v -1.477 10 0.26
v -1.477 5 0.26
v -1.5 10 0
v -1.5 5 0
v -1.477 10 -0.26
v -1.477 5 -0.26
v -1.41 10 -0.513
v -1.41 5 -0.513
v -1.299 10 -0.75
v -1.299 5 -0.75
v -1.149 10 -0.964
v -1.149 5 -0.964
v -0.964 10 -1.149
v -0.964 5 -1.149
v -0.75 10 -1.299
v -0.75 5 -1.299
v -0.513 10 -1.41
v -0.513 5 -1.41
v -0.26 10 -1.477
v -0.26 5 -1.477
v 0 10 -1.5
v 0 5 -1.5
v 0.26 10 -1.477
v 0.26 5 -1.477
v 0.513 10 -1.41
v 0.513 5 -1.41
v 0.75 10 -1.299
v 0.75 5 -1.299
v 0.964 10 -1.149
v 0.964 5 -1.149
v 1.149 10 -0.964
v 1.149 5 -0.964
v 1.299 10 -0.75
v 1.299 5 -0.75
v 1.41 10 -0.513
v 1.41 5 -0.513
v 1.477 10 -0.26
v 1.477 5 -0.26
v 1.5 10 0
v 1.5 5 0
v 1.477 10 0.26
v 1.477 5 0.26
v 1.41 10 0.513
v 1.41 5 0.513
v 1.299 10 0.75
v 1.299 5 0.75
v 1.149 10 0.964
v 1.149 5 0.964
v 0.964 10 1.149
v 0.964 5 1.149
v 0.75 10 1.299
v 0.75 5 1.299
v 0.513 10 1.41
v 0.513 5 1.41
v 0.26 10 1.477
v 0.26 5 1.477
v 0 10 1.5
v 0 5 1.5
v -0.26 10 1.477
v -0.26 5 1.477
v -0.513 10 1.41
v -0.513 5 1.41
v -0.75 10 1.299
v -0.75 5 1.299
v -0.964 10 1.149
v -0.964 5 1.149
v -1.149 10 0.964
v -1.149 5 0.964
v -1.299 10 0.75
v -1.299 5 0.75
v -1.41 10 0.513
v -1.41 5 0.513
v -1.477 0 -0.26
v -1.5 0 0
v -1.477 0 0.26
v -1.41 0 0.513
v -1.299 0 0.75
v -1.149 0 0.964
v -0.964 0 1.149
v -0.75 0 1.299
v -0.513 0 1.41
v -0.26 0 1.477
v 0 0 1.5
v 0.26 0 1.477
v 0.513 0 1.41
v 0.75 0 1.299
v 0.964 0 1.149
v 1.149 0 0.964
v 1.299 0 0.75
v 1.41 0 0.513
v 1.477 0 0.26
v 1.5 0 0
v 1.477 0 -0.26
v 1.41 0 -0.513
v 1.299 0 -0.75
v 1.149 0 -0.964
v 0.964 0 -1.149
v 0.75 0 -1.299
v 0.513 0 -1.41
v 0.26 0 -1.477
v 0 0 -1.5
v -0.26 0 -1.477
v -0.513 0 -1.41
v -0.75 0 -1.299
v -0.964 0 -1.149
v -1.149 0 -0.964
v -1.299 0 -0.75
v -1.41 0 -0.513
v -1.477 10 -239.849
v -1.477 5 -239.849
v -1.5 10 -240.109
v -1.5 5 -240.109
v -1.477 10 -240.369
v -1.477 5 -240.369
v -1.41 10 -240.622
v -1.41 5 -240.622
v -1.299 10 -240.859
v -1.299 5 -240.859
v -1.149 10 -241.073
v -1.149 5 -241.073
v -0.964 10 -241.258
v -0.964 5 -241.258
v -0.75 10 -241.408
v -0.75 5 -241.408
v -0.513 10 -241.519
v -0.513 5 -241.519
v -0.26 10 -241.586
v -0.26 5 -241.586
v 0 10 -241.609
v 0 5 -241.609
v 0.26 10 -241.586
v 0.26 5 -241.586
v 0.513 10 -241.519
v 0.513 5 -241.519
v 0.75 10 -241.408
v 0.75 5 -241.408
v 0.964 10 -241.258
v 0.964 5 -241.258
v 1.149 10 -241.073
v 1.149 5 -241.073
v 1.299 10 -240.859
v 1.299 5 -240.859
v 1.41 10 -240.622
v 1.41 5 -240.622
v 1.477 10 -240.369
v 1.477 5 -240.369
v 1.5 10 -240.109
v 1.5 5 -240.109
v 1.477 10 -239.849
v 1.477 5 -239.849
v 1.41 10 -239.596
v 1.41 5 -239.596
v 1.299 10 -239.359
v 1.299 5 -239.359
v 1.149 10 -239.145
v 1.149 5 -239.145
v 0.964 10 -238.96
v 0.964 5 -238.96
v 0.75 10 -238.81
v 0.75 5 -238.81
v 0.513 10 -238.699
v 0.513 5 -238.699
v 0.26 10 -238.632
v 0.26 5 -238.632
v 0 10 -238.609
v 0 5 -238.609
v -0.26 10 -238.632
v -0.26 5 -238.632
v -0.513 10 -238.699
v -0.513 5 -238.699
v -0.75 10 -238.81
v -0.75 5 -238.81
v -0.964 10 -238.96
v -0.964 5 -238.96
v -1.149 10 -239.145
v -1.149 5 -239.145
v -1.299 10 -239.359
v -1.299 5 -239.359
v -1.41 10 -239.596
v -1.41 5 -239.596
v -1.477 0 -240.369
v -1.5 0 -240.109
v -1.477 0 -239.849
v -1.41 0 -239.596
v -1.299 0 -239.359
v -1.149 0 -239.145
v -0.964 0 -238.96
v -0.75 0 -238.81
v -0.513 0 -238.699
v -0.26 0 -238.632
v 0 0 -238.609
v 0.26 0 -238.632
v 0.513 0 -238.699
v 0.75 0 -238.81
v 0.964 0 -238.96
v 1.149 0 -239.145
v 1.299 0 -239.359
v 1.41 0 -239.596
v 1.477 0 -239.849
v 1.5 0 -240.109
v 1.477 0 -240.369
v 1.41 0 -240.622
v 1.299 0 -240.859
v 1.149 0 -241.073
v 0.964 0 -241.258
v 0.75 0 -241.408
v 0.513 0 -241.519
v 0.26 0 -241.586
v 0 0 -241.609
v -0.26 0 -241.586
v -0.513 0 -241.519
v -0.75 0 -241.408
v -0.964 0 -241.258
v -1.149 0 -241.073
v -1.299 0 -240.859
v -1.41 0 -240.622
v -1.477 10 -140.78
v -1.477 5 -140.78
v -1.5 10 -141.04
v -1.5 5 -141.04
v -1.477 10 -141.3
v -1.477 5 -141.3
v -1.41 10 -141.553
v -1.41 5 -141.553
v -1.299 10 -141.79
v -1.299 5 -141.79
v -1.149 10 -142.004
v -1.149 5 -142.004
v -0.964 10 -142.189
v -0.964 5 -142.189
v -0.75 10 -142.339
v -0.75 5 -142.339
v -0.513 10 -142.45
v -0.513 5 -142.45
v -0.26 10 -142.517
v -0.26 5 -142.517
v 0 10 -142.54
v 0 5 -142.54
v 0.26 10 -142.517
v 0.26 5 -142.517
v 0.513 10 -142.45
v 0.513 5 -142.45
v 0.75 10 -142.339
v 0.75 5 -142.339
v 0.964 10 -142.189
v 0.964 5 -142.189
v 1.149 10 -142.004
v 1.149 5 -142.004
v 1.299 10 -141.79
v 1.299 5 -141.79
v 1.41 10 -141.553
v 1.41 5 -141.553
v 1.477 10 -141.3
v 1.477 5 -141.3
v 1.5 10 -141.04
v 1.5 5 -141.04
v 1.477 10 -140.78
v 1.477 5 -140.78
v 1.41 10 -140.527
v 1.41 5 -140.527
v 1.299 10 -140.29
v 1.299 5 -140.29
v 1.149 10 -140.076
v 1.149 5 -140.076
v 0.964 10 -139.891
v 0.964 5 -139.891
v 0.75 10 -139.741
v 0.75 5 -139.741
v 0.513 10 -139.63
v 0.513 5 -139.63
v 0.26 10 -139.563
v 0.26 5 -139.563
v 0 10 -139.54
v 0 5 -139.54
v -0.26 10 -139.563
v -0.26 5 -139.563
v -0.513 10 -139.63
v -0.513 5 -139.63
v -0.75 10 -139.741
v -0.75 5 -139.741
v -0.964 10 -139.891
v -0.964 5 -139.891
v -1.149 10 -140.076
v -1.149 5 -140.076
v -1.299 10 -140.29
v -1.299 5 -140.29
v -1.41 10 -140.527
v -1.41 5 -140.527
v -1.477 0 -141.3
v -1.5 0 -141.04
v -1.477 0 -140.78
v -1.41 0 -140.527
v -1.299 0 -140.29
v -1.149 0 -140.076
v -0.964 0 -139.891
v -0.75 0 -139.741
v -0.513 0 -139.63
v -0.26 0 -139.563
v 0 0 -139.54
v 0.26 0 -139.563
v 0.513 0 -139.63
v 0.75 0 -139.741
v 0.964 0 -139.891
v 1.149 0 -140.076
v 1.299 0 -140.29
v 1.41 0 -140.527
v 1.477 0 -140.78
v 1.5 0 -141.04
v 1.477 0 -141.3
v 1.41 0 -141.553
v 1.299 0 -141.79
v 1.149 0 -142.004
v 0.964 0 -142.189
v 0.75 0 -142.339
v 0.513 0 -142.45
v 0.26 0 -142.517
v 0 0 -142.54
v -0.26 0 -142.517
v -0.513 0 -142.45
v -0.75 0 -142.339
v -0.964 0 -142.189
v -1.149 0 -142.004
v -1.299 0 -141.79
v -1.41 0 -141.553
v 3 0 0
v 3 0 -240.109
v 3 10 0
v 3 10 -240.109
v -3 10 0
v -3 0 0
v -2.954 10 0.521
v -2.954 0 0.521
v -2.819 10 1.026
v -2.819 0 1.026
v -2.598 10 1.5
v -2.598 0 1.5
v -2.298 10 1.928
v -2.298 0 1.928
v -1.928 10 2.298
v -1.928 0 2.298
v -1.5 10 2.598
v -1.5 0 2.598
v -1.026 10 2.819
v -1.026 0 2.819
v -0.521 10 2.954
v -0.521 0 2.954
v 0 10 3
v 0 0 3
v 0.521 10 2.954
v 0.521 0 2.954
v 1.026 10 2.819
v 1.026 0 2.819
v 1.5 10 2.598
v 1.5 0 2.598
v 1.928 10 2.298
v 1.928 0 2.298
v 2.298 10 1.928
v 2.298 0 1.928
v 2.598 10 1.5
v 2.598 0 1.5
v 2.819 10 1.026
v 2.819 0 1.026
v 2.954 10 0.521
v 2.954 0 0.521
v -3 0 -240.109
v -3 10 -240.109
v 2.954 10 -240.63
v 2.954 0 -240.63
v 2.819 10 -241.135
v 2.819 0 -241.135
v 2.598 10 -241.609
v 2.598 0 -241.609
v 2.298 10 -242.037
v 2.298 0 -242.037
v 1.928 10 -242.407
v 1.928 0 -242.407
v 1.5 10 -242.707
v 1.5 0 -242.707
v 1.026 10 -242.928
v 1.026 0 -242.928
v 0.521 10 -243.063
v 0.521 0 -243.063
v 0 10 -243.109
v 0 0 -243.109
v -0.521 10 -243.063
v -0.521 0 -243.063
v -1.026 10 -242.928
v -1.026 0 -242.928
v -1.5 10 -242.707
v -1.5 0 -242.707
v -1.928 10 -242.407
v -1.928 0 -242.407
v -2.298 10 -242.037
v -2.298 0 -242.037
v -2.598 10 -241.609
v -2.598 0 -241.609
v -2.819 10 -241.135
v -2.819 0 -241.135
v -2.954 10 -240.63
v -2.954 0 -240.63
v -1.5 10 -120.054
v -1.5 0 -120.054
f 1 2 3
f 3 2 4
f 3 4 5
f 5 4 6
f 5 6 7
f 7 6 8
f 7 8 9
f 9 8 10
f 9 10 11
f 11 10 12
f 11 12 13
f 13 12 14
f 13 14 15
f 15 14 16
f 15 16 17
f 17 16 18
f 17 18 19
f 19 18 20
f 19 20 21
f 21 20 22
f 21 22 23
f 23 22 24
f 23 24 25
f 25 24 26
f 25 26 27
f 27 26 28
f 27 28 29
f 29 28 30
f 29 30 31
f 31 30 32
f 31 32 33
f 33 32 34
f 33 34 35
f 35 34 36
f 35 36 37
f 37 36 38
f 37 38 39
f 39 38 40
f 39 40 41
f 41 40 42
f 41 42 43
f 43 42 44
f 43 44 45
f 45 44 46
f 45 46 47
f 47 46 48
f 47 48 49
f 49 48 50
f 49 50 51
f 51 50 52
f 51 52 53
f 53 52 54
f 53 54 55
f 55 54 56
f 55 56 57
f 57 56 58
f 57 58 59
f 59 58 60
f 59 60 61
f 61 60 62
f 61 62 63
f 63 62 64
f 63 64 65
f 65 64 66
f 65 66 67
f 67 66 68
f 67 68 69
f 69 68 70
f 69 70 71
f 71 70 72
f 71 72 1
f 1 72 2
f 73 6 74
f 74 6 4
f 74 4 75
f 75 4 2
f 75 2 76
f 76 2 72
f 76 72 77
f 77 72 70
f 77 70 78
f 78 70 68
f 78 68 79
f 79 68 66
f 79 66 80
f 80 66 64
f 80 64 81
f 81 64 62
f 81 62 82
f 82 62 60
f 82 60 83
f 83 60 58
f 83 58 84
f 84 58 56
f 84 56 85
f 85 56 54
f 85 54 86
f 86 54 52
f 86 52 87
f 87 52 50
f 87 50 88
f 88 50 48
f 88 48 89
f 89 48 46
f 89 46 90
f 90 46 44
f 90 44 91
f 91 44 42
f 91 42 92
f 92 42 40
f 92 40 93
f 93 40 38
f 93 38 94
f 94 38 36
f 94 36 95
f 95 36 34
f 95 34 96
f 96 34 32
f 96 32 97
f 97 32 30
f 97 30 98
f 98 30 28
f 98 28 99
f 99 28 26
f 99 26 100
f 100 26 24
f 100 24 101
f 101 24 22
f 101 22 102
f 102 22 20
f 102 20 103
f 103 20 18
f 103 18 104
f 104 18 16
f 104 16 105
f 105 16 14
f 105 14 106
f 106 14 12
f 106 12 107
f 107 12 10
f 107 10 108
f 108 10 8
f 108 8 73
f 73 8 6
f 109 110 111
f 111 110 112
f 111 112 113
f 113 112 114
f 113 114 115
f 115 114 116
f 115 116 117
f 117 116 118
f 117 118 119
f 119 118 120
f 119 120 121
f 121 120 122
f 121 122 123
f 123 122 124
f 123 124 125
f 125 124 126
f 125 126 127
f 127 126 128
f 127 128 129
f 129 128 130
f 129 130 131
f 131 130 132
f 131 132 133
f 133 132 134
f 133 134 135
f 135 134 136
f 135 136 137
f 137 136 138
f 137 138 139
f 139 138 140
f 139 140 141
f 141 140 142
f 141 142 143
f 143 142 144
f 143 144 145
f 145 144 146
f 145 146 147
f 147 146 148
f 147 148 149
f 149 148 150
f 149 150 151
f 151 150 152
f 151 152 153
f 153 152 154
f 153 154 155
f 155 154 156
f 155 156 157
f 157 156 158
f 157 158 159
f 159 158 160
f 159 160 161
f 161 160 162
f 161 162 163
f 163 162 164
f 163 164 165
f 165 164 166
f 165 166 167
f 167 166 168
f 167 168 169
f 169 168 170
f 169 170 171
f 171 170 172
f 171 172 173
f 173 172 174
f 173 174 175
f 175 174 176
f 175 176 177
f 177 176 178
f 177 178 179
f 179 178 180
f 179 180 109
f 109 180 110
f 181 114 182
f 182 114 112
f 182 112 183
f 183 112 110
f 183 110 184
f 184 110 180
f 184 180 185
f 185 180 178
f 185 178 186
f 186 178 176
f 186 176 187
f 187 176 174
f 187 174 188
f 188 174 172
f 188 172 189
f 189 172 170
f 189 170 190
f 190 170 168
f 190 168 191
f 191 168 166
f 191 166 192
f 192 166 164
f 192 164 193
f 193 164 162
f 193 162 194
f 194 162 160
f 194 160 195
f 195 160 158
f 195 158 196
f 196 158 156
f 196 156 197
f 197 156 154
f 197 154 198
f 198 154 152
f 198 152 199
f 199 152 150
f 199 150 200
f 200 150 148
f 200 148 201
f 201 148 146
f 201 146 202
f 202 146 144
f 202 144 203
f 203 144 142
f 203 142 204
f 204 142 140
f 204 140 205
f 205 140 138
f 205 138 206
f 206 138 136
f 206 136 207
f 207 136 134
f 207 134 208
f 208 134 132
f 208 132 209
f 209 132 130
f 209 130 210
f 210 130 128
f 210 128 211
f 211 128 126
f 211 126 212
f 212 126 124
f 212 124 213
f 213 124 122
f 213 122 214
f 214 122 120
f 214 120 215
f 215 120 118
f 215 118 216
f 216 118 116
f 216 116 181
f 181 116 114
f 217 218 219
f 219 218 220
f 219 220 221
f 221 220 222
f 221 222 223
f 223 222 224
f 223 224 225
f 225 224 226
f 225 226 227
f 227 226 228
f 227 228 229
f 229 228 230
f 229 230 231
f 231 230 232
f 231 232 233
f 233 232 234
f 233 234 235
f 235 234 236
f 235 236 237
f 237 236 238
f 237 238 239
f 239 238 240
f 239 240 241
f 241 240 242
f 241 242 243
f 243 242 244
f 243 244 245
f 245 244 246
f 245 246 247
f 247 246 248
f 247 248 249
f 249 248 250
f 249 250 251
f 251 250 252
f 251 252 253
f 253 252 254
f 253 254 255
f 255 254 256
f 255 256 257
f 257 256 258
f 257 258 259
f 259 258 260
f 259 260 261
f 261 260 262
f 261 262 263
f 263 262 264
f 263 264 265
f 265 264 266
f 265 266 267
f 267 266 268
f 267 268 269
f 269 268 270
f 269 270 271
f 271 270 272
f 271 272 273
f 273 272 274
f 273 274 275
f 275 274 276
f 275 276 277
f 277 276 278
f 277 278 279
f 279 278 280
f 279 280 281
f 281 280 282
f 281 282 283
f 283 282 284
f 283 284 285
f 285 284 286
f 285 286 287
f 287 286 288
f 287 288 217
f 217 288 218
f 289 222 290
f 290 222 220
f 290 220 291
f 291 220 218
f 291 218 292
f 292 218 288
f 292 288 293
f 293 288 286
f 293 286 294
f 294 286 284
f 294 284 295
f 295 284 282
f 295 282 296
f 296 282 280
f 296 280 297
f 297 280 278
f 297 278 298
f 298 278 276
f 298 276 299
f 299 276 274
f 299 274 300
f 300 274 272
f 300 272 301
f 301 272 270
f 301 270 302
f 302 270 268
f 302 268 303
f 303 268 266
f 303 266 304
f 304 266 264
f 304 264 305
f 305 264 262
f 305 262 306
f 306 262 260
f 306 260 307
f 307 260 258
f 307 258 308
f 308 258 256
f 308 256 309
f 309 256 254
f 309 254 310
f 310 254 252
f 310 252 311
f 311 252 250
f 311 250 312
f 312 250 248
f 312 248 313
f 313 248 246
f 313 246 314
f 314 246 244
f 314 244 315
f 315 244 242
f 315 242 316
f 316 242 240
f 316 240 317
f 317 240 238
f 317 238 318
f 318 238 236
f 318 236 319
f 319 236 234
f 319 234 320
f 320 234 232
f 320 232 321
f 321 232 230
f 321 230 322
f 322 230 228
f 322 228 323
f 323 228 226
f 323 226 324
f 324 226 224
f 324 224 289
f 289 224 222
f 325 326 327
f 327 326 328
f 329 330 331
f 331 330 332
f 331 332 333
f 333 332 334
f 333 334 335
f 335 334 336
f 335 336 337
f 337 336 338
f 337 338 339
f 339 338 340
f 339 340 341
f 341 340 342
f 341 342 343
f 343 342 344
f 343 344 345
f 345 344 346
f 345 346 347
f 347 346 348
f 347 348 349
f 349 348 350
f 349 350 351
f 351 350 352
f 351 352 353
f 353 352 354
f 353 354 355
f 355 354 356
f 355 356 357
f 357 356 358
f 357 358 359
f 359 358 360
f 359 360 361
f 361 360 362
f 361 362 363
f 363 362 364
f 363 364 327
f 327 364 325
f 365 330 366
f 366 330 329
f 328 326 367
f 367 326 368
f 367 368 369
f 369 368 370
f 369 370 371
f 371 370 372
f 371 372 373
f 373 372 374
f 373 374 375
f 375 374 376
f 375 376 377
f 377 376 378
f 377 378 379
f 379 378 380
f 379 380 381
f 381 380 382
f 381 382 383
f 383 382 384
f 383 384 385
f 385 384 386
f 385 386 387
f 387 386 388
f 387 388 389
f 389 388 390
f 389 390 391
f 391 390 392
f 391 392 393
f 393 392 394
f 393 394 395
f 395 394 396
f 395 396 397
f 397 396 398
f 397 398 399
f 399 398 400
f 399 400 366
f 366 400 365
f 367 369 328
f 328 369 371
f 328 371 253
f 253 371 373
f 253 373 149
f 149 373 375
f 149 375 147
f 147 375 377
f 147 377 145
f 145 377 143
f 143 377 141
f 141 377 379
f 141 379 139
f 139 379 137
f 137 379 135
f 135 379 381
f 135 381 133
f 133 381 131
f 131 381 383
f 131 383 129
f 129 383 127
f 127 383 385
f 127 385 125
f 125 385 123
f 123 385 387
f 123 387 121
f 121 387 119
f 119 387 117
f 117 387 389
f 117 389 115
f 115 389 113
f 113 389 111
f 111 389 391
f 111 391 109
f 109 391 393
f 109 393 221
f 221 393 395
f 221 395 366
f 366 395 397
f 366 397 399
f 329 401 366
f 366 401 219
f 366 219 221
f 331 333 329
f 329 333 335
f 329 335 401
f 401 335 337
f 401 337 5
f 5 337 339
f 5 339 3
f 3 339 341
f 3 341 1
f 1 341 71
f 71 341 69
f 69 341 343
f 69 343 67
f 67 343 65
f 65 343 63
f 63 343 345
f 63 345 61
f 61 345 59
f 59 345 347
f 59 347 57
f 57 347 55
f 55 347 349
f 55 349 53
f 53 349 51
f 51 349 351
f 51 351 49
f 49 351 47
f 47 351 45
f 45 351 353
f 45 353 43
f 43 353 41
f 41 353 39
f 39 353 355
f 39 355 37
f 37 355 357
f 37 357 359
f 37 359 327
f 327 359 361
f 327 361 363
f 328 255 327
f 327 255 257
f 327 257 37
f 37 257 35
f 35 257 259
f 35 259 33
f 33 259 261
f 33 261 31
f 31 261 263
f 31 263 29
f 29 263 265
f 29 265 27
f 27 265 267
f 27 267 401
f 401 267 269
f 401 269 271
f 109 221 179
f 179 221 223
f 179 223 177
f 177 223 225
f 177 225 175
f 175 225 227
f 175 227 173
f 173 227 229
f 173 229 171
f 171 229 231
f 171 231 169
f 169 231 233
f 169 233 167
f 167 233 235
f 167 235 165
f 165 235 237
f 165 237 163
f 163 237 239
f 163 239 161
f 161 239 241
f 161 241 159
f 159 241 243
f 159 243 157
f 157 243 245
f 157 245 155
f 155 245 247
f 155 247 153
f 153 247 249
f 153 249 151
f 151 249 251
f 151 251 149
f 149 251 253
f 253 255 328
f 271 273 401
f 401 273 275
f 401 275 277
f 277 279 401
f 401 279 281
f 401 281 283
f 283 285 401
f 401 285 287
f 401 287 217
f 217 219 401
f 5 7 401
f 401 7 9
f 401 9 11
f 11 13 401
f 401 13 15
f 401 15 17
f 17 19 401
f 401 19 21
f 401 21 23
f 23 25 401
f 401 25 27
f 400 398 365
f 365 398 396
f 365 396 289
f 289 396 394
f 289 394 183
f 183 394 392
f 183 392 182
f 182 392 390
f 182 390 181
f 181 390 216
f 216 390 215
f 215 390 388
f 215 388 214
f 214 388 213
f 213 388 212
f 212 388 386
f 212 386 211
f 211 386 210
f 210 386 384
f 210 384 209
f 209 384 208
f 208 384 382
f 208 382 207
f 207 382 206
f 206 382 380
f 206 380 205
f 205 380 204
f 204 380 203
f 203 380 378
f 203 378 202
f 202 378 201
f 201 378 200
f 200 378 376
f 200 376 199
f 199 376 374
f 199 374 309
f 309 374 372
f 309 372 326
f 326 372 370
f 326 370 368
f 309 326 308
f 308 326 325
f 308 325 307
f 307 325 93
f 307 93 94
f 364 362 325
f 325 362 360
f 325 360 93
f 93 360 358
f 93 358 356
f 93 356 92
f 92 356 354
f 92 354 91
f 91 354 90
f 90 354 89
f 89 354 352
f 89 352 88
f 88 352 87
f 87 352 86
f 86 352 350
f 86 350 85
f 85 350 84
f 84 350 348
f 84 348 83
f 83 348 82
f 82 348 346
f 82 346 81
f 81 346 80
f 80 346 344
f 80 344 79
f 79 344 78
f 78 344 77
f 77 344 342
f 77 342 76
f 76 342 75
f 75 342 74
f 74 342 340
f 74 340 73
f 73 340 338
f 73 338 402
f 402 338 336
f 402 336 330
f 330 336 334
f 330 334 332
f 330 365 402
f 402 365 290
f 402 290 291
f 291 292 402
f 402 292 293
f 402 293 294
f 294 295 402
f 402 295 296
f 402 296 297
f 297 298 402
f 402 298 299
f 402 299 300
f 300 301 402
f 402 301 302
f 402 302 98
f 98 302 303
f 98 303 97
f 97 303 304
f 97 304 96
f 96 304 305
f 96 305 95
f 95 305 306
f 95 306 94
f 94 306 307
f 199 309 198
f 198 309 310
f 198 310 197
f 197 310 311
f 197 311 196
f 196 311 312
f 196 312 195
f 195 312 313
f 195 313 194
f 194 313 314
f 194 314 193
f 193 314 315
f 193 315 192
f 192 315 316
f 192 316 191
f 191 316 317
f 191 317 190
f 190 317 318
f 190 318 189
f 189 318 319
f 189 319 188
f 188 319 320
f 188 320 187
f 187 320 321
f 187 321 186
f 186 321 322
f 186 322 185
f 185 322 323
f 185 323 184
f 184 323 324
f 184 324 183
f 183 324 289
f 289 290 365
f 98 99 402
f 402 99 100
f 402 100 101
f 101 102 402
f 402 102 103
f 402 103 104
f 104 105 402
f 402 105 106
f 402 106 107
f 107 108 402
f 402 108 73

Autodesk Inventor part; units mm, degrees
ref_plane "YZ Plane" through (0, 0, 0) normal (1, 0, 0) x (0, 1, 0)
ref_plane "XZ Plane" through (0, 0, 0) normal (0, 1, 0) x (-1, 0, 0)
ref_plane "XY Plane" through (0, 0, 0) normal (0, 0, 1) x (1, 0, 0)
sketch "Sketch1" plane through (0, 0, 0) normal (0, 1, 0) x (-1, 0, 0)
  line L0 (0, 0) -> (0, -240.109) construction
  line L1 (-3, 0) -> (-3, -240.109)
  line L2 (3, -240.109) -> (3, 0)
  arc A0 (3, 0) -> (-3, 0) centre (0, 0) ccw
  arc A1 (-3, -240.109) -> (3, -240.109) centre (0, -240.109) ccw
  circle A2 centre (0, 0) radius 1.5
  circle A3 centre (0, -240.109) radius 1.5
  circle A4 centre (0, -141.04) radius 1.5
  point P0 (0, -120.0545)
  dimension "d0" = 6
  dimension "d1" = 240.109
  dimension "d2" = 3
  dimension "d3" = 3
  dimension "d6" = 3
  dimension "d7" = 141.04
extrude "Extrusion1" add sketch "Sketch1" along normal blind 10
